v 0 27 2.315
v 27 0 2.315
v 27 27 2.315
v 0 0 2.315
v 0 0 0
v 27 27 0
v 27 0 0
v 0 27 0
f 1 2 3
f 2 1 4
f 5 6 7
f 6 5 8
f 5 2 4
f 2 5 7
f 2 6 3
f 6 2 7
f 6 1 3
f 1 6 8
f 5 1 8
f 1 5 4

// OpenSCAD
/* Warning, this is a very basic generator with a lot of approximation 
input data : [FBGA, SNC, 27x27x2.315mm, 1285, , B, C04-25655B]
generated by com.zoubworld.electronics.cad.model3d.Basic
Date : Sun Feb 15 10:50:49 CET 2026
*/

//body
color("black")
translate([0,0,0])
cube([27.0,27.0,2.315], center=false);
